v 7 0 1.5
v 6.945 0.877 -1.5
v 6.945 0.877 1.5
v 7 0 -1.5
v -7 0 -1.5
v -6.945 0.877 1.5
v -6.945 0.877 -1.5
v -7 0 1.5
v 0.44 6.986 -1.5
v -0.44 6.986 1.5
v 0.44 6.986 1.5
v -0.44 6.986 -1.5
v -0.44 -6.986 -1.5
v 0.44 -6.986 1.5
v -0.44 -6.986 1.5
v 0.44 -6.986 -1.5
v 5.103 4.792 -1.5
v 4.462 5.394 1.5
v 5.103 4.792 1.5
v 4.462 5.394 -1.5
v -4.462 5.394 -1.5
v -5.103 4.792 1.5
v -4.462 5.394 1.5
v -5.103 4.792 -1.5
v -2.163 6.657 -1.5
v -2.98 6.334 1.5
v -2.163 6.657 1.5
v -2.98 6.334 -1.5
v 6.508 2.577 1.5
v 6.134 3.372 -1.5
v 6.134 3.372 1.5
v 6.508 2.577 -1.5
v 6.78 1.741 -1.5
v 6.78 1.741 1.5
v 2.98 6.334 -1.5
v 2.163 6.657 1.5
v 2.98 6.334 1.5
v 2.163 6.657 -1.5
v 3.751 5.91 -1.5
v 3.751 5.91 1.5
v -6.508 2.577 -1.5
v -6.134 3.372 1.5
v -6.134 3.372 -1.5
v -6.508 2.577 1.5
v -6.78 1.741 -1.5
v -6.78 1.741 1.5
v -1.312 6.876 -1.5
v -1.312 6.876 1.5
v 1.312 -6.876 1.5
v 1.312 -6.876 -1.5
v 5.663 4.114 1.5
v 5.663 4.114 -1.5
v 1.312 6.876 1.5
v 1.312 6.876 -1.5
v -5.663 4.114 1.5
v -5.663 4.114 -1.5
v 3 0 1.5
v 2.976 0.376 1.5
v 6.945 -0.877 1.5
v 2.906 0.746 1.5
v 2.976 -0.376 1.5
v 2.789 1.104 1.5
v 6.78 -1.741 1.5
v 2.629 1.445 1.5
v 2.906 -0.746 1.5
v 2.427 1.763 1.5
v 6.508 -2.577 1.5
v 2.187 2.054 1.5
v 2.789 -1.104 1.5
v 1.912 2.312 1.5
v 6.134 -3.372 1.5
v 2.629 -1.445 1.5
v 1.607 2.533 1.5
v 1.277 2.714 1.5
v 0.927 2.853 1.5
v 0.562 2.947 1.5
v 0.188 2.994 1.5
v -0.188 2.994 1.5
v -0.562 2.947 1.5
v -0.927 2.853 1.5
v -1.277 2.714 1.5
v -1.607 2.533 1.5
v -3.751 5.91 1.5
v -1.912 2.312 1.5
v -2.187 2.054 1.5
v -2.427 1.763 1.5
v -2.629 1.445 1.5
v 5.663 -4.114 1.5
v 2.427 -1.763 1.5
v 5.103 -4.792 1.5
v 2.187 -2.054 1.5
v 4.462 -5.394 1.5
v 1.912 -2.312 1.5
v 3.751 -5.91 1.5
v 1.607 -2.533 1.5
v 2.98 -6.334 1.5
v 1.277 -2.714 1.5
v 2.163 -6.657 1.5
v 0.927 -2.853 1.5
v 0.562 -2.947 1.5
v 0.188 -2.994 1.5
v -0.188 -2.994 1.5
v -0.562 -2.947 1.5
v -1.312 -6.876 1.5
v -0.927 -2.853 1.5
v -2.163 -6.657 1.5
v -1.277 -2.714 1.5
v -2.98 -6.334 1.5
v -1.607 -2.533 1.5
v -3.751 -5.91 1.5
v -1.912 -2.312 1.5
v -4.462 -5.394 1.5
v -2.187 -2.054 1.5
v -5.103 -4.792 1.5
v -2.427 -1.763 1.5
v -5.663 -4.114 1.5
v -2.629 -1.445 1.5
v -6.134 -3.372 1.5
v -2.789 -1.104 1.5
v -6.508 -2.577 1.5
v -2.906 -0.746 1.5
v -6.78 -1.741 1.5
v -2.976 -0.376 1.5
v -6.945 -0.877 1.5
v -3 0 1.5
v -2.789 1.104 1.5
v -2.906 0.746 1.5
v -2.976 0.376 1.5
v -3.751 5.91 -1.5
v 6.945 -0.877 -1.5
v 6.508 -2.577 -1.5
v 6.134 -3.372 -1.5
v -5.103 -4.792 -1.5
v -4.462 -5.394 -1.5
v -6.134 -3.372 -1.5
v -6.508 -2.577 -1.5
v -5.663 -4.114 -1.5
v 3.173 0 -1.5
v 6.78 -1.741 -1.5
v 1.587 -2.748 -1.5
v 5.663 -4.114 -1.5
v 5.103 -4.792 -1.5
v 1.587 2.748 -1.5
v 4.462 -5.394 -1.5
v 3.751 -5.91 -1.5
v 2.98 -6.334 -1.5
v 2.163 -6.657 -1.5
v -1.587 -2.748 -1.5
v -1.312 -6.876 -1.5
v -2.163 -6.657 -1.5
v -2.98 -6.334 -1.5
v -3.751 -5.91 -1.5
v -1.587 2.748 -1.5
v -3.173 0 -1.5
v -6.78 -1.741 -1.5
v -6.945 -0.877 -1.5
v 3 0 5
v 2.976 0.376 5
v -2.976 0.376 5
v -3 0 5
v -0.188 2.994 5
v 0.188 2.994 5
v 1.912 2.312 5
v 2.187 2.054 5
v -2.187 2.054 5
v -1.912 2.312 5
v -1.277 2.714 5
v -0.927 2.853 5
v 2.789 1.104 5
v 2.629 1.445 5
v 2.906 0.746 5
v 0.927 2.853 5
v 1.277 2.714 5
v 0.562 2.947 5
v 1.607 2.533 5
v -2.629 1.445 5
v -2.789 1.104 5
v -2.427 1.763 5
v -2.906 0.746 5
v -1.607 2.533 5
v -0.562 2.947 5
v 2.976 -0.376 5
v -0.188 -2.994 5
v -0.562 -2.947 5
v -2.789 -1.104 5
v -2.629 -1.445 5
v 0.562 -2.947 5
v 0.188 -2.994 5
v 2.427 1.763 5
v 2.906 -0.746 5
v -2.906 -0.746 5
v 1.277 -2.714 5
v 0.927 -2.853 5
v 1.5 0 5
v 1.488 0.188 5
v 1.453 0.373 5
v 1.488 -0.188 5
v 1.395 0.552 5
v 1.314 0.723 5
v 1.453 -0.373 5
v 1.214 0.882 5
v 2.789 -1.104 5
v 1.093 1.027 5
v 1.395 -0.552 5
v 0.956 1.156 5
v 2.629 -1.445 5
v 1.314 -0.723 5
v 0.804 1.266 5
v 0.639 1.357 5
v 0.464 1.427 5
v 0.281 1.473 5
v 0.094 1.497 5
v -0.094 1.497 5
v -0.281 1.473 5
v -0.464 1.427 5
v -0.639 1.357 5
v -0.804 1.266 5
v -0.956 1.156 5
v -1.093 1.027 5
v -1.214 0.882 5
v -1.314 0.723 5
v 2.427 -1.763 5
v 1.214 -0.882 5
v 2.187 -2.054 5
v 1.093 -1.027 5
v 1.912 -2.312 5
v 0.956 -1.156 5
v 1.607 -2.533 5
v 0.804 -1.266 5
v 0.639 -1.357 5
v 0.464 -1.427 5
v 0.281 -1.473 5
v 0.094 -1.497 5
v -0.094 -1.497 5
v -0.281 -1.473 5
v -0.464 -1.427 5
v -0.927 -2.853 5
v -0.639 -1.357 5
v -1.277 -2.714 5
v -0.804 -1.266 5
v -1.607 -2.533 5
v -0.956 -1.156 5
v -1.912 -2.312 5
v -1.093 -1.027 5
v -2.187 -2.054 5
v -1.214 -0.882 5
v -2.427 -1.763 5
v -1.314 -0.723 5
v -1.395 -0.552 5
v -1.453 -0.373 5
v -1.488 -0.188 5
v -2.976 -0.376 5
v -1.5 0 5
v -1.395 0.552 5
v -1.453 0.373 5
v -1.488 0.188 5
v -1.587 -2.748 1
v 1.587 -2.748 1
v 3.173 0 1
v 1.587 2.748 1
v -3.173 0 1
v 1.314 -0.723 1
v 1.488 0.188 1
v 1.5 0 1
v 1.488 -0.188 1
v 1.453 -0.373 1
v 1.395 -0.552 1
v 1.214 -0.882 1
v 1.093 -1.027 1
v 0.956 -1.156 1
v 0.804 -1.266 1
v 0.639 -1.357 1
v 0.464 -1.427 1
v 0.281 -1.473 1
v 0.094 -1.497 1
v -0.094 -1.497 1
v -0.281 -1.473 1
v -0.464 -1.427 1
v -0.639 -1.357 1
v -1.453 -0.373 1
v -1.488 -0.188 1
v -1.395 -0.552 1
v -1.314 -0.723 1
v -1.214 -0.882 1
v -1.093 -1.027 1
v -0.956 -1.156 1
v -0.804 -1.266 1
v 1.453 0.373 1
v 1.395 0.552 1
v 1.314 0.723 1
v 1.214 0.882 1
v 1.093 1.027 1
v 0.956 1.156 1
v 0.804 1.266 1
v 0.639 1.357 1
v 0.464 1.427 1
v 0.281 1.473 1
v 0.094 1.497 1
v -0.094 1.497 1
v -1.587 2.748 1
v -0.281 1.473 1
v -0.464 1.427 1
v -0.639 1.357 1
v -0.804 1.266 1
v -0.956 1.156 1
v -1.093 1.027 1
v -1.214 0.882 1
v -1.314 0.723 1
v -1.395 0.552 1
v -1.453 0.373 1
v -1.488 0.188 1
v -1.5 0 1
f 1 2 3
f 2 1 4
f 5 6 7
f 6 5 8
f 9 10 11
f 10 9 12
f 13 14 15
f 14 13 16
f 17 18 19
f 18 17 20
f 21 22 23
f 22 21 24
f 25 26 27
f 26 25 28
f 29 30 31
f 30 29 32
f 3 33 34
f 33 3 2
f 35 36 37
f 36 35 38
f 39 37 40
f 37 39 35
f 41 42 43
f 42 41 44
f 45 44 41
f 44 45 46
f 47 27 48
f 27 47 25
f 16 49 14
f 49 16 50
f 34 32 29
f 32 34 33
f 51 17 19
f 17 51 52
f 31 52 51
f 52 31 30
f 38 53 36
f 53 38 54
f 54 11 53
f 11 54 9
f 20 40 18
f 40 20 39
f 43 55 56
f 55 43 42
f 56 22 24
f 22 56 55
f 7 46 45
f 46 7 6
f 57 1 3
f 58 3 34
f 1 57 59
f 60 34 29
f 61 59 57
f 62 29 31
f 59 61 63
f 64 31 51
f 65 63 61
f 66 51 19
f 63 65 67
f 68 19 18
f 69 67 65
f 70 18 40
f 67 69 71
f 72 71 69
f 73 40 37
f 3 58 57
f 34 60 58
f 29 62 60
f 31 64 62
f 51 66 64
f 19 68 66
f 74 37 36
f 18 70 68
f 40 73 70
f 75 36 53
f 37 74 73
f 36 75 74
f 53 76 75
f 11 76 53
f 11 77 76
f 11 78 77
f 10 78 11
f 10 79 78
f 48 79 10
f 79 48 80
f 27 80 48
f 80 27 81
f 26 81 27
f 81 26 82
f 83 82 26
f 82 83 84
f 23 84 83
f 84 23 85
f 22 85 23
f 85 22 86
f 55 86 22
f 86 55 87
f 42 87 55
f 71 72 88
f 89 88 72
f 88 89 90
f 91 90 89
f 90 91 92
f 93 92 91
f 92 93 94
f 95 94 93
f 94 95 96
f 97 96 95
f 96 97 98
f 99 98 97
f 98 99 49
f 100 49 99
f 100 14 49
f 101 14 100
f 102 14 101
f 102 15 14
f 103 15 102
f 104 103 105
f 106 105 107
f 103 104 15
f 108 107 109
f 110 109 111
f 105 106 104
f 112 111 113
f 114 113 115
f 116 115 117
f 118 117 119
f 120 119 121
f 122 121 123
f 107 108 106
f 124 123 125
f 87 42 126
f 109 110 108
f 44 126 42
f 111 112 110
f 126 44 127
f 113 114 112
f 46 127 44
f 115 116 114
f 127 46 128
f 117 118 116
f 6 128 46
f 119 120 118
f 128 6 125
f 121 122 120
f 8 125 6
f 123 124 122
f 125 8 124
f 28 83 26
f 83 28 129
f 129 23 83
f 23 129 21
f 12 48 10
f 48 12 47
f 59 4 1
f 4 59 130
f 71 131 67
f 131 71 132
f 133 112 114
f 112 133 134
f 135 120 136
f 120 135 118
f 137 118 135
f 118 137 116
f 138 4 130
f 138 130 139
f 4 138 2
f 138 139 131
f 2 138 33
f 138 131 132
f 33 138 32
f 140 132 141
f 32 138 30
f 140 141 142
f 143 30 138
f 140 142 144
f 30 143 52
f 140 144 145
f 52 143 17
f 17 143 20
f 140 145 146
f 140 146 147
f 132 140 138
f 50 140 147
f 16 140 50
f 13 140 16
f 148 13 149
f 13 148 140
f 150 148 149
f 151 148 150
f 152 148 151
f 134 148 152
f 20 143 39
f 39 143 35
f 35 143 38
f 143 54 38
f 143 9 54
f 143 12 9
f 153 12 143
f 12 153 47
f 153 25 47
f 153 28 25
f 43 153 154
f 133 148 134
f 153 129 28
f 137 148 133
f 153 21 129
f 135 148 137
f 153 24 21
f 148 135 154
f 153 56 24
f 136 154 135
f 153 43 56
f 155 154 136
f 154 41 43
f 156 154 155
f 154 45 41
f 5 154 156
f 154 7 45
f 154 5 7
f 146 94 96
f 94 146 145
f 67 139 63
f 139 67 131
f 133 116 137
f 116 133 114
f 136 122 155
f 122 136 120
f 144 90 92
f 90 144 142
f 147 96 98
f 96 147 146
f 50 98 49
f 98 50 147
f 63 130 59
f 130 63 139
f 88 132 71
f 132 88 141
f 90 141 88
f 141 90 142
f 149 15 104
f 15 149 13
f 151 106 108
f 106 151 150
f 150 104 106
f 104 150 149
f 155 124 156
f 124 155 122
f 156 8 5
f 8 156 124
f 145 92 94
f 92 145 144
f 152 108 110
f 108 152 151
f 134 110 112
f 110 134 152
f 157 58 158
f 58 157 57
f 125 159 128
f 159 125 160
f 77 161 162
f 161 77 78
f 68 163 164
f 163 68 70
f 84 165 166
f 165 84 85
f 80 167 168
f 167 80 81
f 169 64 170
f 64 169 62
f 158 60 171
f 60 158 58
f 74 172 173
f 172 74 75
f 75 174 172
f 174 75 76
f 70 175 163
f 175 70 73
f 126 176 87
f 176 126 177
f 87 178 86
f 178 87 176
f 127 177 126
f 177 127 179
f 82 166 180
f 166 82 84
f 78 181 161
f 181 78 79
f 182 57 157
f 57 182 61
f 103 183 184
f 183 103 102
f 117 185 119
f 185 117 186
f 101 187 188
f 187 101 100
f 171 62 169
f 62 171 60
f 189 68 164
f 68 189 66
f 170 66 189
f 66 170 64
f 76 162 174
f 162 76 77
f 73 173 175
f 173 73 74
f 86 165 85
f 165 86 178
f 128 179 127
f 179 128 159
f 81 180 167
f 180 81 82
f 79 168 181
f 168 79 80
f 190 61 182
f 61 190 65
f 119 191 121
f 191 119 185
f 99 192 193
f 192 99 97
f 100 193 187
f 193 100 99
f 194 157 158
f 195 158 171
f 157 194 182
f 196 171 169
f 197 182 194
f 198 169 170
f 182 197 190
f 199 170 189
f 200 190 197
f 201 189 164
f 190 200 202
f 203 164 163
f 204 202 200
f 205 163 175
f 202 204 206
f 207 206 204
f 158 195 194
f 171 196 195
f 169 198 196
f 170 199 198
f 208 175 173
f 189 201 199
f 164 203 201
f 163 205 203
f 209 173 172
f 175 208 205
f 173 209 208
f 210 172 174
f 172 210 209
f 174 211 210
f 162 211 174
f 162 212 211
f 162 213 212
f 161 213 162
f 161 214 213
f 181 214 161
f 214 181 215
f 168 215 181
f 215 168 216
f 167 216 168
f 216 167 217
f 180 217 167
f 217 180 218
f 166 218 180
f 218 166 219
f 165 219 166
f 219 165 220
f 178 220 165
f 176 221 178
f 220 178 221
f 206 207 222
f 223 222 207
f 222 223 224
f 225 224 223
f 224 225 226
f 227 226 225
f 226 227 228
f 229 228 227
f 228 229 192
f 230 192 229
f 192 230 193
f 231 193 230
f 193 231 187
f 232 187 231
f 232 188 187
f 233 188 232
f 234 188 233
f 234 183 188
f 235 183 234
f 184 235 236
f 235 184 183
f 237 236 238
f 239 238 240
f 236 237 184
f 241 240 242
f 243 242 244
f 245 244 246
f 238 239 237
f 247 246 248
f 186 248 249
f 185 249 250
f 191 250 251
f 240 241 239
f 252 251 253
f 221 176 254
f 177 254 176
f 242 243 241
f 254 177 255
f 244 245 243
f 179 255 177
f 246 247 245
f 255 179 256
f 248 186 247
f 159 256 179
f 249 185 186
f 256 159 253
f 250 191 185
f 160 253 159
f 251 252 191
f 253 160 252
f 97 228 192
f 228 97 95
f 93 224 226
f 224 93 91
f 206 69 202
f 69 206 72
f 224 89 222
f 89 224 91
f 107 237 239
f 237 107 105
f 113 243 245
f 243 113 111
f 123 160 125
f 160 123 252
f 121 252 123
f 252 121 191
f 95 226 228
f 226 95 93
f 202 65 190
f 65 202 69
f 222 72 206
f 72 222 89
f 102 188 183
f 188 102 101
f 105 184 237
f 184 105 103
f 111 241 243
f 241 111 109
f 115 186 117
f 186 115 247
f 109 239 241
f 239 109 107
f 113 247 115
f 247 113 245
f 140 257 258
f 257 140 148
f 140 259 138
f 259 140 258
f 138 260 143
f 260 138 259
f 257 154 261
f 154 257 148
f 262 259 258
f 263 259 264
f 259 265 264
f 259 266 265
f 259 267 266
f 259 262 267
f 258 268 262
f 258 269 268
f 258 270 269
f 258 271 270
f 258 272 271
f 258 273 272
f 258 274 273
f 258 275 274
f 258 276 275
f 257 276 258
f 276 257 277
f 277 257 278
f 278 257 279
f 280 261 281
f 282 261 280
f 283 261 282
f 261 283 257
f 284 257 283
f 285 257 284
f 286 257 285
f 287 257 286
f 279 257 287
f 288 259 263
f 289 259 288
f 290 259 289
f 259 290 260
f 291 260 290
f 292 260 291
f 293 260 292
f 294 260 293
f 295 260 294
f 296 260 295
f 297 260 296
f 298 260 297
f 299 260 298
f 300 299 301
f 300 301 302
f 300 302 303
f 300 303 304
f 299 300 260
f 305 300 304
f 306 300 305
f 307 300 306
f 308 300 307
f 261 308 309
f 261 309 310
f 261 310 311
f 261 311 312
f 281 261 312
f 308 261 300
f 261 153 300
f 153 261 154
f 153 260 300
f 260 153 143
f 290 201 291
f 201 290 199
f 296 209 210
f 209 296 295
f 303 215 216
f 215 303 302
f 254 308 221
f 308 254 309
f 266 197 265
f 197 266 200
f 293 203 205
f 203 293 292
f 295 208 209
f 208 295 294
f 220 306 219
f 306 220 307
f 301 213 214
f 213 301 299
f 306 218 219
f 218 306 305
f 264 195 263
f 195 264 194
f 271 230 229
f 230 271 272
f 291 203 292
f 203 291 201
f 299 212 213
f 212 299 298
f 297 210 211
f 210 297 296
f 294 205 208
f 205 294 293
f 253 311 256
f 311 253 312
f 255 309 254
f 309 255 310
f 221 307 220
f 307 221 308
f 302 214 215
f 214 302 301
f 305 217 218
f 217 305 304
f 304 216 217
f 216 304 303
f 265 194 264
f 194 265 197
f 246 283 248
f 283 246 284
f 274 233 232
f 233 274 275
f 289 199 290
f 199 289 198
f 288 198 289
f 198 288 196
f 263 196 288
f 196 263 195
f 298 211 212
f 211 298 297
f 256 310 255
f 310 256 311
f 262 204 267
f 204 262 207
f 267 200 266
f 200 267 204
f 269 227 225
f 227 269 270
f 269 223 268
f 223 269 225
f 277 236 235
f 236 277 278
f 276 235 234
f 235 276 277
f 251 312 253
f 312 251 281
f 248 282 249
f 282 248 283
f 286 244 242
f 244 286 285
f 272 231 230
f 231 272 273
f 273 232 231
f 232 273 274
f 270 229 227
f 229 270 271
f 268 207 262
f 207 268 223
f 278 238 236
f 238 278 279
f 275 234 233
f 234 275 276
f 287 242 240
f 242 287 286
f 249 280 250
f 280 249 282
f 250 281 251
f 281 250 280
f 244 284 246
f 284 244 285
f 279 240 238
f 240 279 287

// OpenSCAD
$fn = 50;


difference() {
	union() {
		translate(v = [0, 0, -1.5000000000]) {
			cylinder(h = 3, r = 7.0000000000);
		}
		translate(v = [0, 0, -1.5000000000]) {
			cylinder(h = 6.5000000000, r = 3.0000000000);
		}
	}
	union() {
		translate(v = [0, 0, -1.5000000000]) {
			rotate(a = [0, 0, 0]) {
				difference() {
					union() {
						linear_extrude(height = 2.5000000000) {
							polygon(points = [[3.1735000000, 0.0000000000], [1.5867500000, 2.7483316189], [-1.5867500000, 2.7483316189], [-3.1735000000, 0.0000000000], [-1.5867500000, -2.7483316189], [1.5867500000, -2.7483316189]]);
						}
					}
					union();
				}
			}
		}
		translate(v = [0, 0, -100.0000000000]) {
			cylinder(h = 200, r = 1.5000000000);
		}
	}
}
